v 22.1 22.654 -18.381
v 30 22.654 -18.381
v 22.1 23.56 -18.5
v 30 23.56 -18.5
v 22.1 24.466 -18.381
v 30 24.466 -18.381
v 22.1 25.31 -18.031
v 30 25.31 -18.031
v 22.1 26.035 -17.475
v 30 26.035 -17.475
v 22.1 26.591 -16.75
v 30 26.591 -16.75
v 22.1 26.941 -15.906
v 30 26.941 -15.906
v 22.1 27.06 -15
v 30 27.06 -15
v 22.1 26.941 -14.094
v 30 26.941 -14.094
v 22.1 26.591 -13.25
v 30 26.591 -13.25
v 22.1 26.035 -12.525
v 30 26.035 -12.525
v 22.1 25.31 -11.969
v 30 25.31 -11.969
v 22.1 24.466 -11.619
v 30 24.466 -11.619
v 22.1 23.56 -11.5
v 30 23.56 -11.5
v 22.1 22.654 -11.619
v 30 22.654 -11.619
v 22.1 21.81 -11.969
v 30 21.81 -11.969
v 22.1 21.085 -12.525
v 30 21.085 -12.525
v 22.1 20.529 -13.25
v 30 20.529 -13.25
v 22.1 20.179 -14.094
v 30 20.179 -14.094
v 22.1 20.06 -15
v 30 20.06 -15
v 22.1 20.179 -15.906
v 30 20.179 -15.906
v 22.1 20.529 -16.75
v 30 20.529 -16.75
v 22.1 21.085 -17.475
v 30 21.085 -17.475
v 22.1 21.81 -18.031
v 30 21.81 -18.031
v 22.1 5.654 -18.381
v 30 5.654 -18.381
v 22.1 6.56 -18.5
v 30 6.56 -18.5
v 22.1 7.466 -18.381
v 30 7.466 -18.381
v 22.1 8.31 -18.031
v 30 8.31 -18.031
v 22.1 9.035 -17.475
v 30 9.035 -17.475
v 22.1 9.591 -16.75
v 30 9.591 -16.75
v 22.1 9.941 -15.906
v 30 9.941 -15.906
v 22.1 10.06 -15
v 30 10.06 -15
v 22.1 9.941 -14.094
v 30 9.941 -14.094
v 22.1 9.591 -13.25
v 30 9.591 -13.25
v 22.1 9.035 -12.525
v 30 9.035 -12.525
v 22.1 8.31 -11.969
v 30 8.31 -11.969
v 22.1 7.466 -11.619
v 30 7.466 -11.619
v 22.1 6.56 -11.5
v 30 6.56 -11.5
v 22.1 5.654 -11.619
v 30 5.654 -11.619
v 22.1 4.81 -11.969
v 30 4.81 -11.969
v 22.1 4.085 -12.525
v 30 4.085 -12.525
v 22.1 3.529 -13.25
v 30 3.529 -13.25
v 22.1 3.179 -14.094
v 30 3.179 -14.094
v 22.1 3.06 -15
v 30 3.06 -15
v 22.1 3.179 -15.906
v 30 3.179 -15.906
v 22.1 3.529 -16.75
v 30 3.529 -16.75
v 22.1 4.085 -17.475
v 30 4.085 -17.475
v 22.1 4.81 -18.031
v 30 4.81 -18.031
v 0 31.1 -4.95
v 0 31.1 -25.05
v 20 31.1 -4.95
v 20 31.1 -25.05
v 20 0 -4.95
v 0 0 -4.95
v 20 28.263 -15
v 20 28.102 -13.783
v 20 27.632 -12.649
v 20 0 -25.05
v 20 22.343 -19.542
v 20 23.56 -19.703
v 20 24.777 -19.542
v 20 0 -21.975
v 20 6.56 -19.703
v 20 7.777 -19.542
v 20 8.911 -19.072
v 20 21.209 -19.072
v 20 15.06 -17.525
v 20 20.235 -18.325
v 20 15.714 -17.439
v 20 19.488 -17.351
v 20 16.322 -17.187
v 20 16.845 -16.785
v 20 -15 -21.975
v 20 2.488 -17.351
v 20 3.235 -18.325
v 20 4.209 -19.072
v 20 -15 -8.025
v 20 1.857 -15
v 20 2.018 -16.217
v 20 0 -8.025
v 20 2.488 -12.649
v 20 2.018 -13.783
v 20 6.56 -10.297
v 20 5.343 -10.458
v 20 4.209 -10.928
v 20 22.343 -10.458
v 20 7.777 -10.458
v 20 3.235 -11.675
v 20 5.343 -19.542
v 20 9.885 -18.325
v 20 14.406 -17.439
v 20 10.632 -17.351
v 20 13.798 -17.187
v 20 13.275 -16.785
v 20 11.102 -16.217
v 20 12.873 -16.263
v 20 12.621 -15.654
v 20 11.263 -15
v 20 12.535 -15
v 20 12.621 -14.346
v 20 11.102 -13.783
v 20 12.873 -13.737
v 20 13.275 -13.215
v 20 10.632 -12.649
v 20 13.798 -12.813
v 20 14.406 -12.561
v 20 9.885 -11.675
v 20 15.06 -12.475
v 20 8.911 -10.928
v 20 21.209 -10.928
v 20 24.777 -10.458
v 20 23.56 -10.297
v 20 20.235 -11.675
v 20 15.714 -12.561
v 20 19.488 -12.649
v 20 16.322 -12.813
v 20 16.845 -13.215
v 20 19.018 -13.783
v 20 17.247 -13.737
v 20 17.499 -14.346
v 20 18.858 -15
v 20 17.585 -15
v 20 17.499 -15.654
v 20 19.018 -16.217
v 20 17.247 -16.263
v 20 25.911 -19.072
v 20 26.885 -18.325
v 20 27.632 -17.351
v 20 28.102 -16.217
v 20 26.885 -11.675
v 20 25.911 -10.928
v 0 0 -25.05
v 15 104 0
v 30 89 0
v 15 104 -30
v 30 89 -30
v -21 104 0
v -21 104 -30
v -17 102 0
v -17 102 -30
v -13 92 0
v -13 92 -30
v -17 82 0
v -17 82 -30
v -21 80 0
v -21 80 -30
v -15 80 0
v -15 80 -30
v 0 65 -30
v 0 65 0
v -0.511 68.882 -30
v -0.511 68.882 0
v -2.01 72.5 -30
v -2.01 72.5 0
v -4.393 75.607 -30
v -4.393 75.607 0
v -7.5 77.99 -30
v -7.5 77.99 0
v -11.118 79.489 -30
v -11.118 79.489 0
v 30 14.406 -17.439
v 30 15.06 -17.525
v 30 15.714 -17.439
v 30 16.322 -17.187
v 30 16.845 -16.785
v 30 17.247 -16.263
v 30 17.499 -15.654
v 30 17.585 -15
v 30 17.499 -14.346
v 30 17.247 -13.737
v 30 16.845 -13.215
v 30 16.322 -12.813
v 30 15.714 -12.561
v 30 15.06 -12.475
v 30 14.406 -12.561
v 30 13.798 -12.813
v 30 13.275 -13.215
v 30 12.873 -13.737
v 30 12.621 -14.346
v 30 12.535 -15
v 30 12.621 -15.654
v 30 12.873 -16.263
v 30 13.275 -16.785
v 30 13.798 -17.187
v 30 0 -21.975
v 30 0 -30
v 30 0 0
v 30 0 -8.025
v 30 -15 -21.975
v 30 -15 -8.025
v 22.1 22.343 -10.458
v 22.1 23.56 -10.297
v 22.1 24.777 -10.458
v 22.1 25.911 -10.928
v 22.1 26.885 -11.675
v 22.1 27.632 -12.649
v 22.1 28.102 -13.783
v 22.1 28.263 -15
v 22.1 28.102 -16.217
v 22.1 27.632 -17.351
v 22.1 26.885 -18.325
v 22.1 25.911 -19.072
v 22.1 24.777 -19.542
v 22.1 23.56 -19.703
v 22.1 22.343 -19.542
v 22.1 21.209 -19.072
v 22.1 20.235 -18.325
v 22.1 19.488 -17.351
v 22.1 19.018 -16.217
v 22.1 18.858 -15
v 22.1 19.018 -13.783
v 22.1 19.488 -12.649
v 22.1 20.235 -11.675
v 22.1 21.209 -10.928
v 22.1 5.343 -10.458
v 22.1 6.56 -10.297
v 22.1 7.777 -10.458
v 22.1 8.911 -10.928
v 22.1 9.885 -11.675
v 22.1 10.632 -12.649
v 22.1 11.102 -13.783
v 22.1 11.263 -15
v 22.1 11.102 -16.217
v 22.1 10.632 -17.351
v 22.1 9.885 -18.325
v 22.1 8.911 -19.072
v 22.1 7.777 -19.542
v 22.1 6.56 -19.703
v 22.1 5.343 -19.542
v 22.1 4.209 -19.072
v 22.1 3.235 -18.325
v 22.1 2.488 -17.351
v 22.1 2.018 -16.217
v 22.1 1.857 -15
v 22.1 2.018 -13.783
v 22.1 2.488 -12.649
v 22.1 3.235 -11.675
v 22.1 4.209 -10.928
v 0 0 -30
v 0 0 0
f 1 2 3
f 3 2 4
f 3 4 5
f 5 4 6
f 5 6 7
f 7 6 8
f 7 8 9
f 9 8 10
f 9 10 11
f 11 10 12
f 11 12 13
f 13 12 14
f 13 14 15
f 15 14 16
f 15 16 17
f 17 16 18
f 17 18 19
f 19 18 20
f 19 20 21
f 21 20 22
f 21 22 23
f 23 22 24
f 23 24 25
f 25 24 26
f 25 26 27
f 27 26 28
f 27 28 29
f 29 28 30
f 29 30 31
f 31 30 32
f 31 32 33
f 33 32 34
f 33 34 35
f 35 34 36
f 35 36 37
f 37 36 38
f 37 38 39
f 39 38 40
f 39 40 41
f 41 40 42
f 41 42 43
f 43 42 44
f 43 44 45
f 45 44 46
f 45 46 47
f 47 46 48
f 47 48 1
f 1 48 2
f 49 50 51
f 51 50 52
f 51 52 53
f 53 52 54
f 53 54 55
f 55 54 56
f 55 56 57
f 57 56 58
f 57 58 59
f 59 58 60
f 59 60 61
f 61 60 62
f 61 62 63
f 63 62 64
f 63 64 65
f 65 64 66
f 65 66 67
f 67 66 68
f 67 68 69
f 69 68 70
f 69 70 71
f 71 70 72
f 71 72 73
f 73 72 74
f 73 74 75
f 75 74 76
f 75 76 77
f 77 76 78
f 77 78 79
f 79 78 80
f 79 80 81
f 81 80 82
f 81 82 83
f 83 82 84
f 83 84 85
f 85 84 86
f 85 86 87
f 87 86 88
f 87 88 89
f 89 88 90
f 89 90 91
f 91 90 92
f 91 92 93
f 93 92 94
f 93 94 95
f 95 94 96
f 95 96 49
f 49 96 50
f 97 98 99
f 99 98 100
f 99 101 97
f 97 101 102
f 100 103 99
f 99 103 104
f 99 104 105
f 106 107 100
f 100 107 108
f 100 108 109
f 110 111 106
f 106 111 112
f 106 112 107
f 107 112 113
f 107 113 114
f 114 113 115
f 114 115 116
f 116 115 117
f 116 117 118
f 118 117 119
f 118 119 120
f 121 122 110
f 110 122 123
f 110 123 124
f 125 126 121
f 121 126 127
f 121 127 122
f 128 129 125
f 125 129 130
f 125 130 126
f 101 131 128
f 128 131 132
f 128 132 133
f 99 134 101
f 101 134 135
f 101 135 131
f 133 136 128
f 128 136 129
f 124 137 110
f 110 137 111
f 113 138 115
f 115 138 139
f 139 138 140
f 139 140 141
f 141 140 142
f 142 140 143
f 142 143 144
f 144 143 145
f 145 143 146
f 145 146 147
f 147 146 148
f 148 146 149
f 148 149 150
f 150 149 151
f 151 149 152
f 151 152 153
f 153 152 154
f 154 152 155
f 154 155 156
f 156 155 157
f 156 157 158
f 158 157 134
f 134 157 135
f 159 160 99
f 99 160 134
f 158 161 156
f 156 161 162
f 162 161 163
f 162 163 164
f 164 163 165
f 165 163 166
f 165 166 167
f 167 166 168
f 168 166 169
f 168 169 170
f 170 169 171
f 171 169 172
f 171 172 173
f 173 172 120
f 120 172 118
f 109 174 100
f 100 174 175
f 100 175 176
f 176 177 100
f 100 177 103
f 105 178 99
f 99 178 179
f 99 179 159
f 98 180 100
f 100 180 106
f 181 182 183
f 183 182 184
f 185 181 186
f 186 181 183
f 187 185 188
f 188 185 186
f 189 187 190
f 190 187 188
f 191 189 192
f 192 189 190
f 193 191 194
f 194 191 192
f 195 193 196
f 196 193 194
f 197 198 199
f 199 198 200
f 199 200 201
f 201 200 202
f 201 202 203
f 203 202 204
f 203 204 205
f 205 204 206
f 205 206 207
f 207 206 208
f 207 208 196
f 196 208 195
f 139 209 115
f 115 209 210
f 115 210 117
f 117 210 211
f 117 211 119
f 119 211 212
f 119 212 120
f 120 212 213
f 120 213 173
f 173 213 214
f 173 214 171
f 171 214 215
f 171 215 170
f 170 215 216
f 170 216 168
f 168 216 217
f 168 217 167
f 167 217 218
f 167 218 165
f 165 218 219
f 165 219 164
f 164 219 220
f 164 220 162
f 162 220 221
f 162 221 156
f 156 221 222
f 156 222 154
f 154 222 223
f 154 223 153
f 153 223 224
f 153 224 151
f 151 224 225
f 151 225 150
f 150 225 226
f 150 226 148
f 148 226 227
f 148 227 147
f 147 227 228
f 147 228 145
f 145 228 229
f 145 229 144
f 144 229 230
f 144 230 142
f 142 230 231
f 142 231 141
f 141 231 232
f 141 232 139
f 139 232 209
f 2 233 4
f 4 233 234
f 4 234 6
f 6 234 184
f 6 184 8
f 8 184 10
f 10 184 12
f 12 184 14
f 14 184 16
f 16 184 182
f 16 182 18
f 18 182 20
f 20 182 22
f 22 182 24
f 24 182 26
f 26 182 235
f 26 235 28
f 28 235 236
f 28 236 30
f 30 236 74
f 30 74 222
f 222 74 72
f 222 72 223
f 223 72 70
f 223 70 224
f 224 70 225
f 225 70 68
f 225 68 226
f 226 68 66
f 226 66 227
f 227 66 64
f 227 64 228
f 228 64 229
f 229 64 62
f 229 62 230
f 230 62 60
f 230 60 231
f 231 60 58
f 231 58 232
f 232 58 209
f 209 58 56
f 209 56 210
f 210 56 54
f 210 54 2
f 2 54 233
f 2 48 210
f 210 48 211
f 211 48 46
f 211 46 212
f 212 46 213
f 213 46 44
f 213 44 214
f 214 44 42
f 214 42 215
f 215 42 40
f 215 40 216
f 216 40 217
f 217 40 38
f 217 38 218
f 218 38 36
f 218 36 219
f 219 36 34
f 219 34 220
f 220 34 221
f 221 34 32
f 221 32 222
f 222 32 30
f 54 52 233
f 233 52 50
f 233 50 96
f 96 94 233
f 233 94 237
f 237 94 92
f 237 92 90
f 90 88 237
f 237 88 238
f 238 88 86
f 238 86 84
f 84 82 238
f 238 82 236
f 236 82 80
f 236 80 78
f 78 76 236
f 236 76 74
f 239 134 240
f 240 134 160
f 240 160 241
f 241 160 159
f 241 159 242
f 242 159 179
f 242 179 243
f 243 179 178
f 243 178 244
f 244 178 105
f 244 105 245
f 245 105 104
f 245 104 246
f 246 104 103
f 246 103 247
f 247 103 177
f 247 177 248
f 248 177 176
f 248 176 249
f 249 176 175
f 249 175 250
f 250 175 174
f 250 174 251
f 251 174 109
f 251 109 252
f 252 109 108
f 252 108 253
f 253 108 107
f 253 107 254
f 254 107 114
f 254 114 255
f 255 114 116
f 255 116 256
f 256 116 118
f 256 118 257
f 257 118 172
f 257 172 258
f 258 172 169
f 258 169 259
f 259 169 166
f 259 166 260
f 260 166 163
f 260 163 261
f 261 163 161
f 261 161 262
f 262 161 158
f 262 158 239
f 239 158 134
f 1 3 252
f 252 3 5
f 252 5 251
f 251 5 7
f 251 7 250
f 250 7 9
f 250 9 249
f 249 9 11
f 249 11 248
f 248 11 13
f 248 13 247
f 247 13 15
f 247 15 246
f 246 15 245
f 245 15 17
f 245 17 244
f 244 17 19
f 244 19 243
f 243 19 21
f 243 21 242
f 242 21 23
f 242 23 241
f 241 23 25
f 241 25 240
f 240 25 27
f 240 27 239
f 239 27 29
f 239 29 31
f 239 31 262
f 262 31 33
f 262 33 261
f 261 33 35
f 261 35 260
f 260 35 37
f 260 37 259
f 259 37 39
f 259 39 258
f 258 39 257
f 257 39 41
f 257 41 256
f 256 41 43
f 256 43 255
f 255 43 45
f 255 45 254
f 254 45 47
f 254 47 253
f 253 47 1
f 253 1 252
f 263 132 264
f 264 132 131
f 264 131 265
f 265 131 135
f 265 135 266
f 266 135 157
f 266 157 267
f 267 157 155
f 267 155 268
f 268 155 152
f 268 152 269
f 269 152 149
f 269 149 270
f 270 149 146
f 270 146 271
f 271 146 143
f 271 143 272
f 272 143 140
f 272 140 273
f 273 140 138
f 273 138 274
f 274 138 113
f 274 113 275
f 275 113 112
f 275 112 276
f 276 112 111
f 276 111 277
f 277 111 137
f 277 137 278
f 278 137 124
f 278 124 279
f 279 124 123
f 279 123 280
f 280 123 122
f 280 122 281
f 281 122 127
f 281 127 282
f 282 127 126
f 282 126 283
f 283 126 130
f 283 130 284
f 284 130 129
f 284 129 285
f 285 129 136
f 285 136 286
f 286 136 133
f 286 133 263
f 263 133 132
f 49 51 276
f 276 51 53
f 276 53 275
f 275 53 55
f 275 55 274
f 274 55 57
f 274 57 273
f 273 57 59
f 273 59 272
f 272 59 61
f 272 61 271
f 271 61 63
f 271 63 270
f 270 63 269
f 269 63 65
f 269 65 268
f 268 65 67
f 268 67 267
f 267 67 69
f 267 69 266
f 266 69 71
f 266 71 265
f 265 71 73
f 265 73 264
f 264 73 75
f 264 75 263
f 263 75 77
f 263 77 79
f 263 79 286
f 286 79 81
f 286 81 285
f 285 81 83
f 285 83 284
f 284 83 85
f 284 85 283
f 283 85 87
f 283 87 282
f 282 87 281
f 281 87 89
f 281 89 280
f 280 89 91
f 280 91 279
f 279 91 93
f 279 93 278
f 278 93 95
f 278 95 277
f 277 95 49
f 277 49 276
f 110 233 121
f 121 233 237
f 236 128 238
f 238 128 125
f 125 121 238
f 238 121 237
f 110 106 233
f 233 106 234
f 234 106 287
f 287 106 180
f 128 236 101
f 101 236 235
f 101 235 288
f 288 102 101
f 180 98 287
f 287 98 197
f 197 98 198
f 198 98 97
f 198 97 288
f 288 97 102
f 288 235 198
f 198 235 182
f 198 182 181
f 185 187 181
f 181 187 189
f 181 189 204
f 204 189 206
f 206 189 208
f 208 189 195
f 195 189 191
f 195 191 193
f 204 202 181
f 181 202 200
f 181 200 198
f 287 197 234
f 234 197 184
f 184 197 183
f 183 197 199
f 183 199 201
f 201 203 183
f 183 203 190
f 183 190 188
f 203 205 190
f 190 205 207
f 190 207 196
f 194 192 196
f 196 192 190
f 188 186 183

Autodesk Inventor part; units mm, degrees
ref_plane "YZ Plane" through (0, 0, 0) normal (1, 0, 0) x (0, 1, 0)
ref_plane "XZ Plane" through (0, 0, 0) normal (0, 1, 0) x (-1, 0, 0)
ref_plane "XY Plane" through (0, 0, 0) normal (0, 0, 1) x (1, 0, 0)
sketch "Sketch1" plane through (0, 0, 0) normal (0, 0, 1) x (1, 0, 0)
  line L0 (0, 0) -> (25, 0)
  line L1 (25, 0) -> (25, 40)
  line L2 (25, 40) -> (0, 40)
  line L3 (0, 40) -> (0, 0)
  dimension "d1" = 25
  dimension "d2" = 40
  dimension "d3" = 25
extrude "Extrusion1" add sketch "Sketch1" against normal blind 30
sketch "Sketch2" plane through (25, 0, 0) normal (1, 0, 0) x (0, 0, -1)
  line L0 (0, 0) -> (30, 0) projected
  circle A0 centre (15, 6.56) radius 2.46
extrude "Extrusion2" cut sketch "Sketch2" against normal blind 30
sketch "Sketch3" plane through (0, 0, 0) normal (-1, 0, 0) x (0, 0, 1)
  line L0 (0, 0) -> (-30, 0) projected
  line L1 (-25.05, 0) -> (-4.95, 0)
  line L2 (-4.95, 0) -> (-4.95, 33.12)
  line L3 (-4.95, 33.12) -> (-25.05, 33.12)
  line L4 (-25.05, 33.12) -> (-25.05, 0)
  dimension "d11" = 20.1
extrude "Extrusion3" cut sketch "Sketch3" against normal blind 20
sketch "Sketch4" plane through (0, 0, 0) normal (0, -1, 0) x (1, 0, 0)
  line L0 (20, -4.95) -> (20, -25.05) projected
  line L1 (20, -15) -> (25, -15)
  line L2 (25, 0) -> (25, -30) projected
  line L3 (20, -8.025) -> (25, -8.025)
  line L4 (25, -8.025) -> (25, -21.975)
  line L5 (25, -21.975) -> (20, -21.975)
  line L6 (20, -21.975) -> (20, -8.025)
  line L7 (20, -8.025) -> (25, -21.975) construction
  line L8 (25, -8.025) -> (20, -21.975) construction
  line L9 (25, -12.54) -> (25, -17.46) projected
  point P0 (0, 0)
  point P1 (22.5, -15)
  dimension "d14" = 13.95
extrude "Extrusion4" add sketch "Sketch4" along normal blind 15
sketch "Sketch5" plane through (20, 0, 0) normal (-1, 0, 0) x (0, 0, 1)
  circle A0 centre (-15, 6.56) radius 2.46 projected
  circle A1 centre (-15, 6.56) radius 4.7025
  circle A2 centre (-15, 6.56) radius 2.46 projected
  circle A3 centre (-15, 6.56) radius 2.46
  point P0 (0, 0)
  dimension "d17" = 9.405
extrude "Extrusion5" cut sketch "Sketch5" against normal blind 2.1
sketch "Sketch6" plane through (25, 0, 0) normal (1, 0, 0) x (0, 0, -1)
  circle A0 centre (15, 6.56) radius 4.7025 projected
  line L0 (15, 6.56) -> (15, 23.56)
  circle A1 centre (15, 23.56) radius 2.46
  point P0 (0, 0)
  dimension "d20" = 17
  dimension "d21" = 4.92
extrude "Extrusion6" cut sketch "Sketch6" against normal blind 10 contours A1
sketch "Sketch7" plane through (20, 0, 0) normal (-1, 0, 0) x (0, 0, 1)
  circle A0 centre (-15, 23.56) radius 2.46 projected
  circle A1 centre (-15, 23.56) radius 4.7025
  point P0 (0, 0)
  dimension "d24" = 9.405
extrude "Extrusion7" cut sketch "Sketch7" against normal blind 2.1
sketch "Sketch9" plane through (25, 0, 0) normal (1, 0, 0) x (0, 0, -1)
  circle A0 centre (15, 6.56) radius 2.46 projected
  circle A1 centre (15, 6.56) radius 2.46
  circle A2 centre (15, 23.56) radius 2.46 projected
  circle A3 centre (15, 23.56) radius 2.46
  line L0 (30, 40) -> (30, 0) projected
  line L1 (30, 0) -> (30, 40)
  line L2 (30, 40) -> (0, 40)
  line L3 (0, 40) -> (0, 0)
  line L4 (0, 0) -> (8.025, 0) projected
  line L5 (21.975, 0) -> (21.975, -15)
  line L6 (21.975, -15) -> (8.025, -15)
  line L7 (8.025, -15) -> (8.025, 0)
  line L8 (0, 0) -> (8.025, 0)
  line L9 (21.975, 0) -> (30, 0)
extrude "Extrusion8" add sketch "Sketch9" along normal blind 5
sketch "Sketch10" plane through (0, 40, 0) normal (0, 1, 0) x (1, 0, 0)
  line L0 (0, 30) -> (30, 30) projected
  line L1 (30, 0) -> (0, 0) projected
  line L2 (0, 30) -> (30, 30)
  line L3 (30, 30) -> (30, 0)
  line L4 (30, 0) -> (0, 0)
  line L5 (0, 0) -> (0, 30)
extrude "Extrusion9" add sketch "Sketch10" along normal blind 10
sketch "Sketch12" plane through (30, 0, 0) normal (1, 0, 0) x (0, 0, -1)
  circle A0 centre (15, 6.56) radius 2.46 projected
  line L0 (15, 6.56) -> (15, 15.06)
  circle A1 centre (15, 15.06) radius 2.525
  point P0 (0, 0)
  dimension "d31" = 8.5
  dimension "d33" = 5.05
extrude "Extrusion10" cut sketch "Sketch12" against normal blind 30 contours A1
sketch "Sketch14" plane through (0, 0, 0) normal (0, 0, 1) x (1, 0, 0)
  line L0 (30, 50) -> (0, 50) projected
  line L1 (0, 50) -> (0, 65)
  line L2 (30, 0) -> (30, 50) projected
  line L3 (30, 89) -> (30, 50)
  arc A0 (0, 65) -> (-15, 80) centre (-15, 65) ccw
  line L4 (30, 85) -> (30, 80)
  line L5 (-21, 104) -> (15, 104)
  line L6 (-17, 102) -> (-21, 104)
  line L7 (-17, 102) -> (-13, 92)
  line L8 (-17, 82) -> (-21, 80)
  line L9 (-17, 82) -> (-13, 92)
  line L10 (30, 89) -> (15, 104)
  line L11 (-15, 80) -> (-21, 80)
  point P0 (0, 0)
  point P1 (0, 80)
  dimension "d47" = 30
  dimension "d54" = 15
  dimension "d77" = 6
extrude "Extrusion12" add sketch "Sketch14" against normal blind 30
sketch "Sketch15" plane through (0, 0, -25.05) normal (-1, 0, 0) x (0, 0, 1)
  line L0 (0, 33.12) -> (20.1, 33.12) projected
  line L1 (20.1, 33.12) -> (20.1, 0) projected
  line L2 (0, 33.12) -> (20.1, 33.12)
  line L3 (20.1, 33.12) -> (20.1, 31.1)
  line L4 (20.1, 31.1) -> (0, 31.1)
  line L5 (0, 31.1) -> (0, 33.12)
  point P0 (25.05, 0)
  dimension "d57" = 2.02
extrude "Extrusion13" add sketch "Sketch15" against normal blind 20
sketch "Sketch19" plane through (30, 0, 0) normal (1, 0, 0) x (0, 0, -1)
  circle A0 centre (15, 23.56) radius 2.46 projected
  circle A1 centre (15, 23.56) radius 3.5
  circle A2 centre (15, 6.56) radius 2.46 projected
  circle A3 centre (15, 6.56) radius 3.5
  point P0 (0, 0)
  dimension "d73" = 7
  dimension "d74" = 7
extrude "Extrusion14" cut sketch "Sketch19" against normal blind 10
properties part number "20mm_x_30mm"
